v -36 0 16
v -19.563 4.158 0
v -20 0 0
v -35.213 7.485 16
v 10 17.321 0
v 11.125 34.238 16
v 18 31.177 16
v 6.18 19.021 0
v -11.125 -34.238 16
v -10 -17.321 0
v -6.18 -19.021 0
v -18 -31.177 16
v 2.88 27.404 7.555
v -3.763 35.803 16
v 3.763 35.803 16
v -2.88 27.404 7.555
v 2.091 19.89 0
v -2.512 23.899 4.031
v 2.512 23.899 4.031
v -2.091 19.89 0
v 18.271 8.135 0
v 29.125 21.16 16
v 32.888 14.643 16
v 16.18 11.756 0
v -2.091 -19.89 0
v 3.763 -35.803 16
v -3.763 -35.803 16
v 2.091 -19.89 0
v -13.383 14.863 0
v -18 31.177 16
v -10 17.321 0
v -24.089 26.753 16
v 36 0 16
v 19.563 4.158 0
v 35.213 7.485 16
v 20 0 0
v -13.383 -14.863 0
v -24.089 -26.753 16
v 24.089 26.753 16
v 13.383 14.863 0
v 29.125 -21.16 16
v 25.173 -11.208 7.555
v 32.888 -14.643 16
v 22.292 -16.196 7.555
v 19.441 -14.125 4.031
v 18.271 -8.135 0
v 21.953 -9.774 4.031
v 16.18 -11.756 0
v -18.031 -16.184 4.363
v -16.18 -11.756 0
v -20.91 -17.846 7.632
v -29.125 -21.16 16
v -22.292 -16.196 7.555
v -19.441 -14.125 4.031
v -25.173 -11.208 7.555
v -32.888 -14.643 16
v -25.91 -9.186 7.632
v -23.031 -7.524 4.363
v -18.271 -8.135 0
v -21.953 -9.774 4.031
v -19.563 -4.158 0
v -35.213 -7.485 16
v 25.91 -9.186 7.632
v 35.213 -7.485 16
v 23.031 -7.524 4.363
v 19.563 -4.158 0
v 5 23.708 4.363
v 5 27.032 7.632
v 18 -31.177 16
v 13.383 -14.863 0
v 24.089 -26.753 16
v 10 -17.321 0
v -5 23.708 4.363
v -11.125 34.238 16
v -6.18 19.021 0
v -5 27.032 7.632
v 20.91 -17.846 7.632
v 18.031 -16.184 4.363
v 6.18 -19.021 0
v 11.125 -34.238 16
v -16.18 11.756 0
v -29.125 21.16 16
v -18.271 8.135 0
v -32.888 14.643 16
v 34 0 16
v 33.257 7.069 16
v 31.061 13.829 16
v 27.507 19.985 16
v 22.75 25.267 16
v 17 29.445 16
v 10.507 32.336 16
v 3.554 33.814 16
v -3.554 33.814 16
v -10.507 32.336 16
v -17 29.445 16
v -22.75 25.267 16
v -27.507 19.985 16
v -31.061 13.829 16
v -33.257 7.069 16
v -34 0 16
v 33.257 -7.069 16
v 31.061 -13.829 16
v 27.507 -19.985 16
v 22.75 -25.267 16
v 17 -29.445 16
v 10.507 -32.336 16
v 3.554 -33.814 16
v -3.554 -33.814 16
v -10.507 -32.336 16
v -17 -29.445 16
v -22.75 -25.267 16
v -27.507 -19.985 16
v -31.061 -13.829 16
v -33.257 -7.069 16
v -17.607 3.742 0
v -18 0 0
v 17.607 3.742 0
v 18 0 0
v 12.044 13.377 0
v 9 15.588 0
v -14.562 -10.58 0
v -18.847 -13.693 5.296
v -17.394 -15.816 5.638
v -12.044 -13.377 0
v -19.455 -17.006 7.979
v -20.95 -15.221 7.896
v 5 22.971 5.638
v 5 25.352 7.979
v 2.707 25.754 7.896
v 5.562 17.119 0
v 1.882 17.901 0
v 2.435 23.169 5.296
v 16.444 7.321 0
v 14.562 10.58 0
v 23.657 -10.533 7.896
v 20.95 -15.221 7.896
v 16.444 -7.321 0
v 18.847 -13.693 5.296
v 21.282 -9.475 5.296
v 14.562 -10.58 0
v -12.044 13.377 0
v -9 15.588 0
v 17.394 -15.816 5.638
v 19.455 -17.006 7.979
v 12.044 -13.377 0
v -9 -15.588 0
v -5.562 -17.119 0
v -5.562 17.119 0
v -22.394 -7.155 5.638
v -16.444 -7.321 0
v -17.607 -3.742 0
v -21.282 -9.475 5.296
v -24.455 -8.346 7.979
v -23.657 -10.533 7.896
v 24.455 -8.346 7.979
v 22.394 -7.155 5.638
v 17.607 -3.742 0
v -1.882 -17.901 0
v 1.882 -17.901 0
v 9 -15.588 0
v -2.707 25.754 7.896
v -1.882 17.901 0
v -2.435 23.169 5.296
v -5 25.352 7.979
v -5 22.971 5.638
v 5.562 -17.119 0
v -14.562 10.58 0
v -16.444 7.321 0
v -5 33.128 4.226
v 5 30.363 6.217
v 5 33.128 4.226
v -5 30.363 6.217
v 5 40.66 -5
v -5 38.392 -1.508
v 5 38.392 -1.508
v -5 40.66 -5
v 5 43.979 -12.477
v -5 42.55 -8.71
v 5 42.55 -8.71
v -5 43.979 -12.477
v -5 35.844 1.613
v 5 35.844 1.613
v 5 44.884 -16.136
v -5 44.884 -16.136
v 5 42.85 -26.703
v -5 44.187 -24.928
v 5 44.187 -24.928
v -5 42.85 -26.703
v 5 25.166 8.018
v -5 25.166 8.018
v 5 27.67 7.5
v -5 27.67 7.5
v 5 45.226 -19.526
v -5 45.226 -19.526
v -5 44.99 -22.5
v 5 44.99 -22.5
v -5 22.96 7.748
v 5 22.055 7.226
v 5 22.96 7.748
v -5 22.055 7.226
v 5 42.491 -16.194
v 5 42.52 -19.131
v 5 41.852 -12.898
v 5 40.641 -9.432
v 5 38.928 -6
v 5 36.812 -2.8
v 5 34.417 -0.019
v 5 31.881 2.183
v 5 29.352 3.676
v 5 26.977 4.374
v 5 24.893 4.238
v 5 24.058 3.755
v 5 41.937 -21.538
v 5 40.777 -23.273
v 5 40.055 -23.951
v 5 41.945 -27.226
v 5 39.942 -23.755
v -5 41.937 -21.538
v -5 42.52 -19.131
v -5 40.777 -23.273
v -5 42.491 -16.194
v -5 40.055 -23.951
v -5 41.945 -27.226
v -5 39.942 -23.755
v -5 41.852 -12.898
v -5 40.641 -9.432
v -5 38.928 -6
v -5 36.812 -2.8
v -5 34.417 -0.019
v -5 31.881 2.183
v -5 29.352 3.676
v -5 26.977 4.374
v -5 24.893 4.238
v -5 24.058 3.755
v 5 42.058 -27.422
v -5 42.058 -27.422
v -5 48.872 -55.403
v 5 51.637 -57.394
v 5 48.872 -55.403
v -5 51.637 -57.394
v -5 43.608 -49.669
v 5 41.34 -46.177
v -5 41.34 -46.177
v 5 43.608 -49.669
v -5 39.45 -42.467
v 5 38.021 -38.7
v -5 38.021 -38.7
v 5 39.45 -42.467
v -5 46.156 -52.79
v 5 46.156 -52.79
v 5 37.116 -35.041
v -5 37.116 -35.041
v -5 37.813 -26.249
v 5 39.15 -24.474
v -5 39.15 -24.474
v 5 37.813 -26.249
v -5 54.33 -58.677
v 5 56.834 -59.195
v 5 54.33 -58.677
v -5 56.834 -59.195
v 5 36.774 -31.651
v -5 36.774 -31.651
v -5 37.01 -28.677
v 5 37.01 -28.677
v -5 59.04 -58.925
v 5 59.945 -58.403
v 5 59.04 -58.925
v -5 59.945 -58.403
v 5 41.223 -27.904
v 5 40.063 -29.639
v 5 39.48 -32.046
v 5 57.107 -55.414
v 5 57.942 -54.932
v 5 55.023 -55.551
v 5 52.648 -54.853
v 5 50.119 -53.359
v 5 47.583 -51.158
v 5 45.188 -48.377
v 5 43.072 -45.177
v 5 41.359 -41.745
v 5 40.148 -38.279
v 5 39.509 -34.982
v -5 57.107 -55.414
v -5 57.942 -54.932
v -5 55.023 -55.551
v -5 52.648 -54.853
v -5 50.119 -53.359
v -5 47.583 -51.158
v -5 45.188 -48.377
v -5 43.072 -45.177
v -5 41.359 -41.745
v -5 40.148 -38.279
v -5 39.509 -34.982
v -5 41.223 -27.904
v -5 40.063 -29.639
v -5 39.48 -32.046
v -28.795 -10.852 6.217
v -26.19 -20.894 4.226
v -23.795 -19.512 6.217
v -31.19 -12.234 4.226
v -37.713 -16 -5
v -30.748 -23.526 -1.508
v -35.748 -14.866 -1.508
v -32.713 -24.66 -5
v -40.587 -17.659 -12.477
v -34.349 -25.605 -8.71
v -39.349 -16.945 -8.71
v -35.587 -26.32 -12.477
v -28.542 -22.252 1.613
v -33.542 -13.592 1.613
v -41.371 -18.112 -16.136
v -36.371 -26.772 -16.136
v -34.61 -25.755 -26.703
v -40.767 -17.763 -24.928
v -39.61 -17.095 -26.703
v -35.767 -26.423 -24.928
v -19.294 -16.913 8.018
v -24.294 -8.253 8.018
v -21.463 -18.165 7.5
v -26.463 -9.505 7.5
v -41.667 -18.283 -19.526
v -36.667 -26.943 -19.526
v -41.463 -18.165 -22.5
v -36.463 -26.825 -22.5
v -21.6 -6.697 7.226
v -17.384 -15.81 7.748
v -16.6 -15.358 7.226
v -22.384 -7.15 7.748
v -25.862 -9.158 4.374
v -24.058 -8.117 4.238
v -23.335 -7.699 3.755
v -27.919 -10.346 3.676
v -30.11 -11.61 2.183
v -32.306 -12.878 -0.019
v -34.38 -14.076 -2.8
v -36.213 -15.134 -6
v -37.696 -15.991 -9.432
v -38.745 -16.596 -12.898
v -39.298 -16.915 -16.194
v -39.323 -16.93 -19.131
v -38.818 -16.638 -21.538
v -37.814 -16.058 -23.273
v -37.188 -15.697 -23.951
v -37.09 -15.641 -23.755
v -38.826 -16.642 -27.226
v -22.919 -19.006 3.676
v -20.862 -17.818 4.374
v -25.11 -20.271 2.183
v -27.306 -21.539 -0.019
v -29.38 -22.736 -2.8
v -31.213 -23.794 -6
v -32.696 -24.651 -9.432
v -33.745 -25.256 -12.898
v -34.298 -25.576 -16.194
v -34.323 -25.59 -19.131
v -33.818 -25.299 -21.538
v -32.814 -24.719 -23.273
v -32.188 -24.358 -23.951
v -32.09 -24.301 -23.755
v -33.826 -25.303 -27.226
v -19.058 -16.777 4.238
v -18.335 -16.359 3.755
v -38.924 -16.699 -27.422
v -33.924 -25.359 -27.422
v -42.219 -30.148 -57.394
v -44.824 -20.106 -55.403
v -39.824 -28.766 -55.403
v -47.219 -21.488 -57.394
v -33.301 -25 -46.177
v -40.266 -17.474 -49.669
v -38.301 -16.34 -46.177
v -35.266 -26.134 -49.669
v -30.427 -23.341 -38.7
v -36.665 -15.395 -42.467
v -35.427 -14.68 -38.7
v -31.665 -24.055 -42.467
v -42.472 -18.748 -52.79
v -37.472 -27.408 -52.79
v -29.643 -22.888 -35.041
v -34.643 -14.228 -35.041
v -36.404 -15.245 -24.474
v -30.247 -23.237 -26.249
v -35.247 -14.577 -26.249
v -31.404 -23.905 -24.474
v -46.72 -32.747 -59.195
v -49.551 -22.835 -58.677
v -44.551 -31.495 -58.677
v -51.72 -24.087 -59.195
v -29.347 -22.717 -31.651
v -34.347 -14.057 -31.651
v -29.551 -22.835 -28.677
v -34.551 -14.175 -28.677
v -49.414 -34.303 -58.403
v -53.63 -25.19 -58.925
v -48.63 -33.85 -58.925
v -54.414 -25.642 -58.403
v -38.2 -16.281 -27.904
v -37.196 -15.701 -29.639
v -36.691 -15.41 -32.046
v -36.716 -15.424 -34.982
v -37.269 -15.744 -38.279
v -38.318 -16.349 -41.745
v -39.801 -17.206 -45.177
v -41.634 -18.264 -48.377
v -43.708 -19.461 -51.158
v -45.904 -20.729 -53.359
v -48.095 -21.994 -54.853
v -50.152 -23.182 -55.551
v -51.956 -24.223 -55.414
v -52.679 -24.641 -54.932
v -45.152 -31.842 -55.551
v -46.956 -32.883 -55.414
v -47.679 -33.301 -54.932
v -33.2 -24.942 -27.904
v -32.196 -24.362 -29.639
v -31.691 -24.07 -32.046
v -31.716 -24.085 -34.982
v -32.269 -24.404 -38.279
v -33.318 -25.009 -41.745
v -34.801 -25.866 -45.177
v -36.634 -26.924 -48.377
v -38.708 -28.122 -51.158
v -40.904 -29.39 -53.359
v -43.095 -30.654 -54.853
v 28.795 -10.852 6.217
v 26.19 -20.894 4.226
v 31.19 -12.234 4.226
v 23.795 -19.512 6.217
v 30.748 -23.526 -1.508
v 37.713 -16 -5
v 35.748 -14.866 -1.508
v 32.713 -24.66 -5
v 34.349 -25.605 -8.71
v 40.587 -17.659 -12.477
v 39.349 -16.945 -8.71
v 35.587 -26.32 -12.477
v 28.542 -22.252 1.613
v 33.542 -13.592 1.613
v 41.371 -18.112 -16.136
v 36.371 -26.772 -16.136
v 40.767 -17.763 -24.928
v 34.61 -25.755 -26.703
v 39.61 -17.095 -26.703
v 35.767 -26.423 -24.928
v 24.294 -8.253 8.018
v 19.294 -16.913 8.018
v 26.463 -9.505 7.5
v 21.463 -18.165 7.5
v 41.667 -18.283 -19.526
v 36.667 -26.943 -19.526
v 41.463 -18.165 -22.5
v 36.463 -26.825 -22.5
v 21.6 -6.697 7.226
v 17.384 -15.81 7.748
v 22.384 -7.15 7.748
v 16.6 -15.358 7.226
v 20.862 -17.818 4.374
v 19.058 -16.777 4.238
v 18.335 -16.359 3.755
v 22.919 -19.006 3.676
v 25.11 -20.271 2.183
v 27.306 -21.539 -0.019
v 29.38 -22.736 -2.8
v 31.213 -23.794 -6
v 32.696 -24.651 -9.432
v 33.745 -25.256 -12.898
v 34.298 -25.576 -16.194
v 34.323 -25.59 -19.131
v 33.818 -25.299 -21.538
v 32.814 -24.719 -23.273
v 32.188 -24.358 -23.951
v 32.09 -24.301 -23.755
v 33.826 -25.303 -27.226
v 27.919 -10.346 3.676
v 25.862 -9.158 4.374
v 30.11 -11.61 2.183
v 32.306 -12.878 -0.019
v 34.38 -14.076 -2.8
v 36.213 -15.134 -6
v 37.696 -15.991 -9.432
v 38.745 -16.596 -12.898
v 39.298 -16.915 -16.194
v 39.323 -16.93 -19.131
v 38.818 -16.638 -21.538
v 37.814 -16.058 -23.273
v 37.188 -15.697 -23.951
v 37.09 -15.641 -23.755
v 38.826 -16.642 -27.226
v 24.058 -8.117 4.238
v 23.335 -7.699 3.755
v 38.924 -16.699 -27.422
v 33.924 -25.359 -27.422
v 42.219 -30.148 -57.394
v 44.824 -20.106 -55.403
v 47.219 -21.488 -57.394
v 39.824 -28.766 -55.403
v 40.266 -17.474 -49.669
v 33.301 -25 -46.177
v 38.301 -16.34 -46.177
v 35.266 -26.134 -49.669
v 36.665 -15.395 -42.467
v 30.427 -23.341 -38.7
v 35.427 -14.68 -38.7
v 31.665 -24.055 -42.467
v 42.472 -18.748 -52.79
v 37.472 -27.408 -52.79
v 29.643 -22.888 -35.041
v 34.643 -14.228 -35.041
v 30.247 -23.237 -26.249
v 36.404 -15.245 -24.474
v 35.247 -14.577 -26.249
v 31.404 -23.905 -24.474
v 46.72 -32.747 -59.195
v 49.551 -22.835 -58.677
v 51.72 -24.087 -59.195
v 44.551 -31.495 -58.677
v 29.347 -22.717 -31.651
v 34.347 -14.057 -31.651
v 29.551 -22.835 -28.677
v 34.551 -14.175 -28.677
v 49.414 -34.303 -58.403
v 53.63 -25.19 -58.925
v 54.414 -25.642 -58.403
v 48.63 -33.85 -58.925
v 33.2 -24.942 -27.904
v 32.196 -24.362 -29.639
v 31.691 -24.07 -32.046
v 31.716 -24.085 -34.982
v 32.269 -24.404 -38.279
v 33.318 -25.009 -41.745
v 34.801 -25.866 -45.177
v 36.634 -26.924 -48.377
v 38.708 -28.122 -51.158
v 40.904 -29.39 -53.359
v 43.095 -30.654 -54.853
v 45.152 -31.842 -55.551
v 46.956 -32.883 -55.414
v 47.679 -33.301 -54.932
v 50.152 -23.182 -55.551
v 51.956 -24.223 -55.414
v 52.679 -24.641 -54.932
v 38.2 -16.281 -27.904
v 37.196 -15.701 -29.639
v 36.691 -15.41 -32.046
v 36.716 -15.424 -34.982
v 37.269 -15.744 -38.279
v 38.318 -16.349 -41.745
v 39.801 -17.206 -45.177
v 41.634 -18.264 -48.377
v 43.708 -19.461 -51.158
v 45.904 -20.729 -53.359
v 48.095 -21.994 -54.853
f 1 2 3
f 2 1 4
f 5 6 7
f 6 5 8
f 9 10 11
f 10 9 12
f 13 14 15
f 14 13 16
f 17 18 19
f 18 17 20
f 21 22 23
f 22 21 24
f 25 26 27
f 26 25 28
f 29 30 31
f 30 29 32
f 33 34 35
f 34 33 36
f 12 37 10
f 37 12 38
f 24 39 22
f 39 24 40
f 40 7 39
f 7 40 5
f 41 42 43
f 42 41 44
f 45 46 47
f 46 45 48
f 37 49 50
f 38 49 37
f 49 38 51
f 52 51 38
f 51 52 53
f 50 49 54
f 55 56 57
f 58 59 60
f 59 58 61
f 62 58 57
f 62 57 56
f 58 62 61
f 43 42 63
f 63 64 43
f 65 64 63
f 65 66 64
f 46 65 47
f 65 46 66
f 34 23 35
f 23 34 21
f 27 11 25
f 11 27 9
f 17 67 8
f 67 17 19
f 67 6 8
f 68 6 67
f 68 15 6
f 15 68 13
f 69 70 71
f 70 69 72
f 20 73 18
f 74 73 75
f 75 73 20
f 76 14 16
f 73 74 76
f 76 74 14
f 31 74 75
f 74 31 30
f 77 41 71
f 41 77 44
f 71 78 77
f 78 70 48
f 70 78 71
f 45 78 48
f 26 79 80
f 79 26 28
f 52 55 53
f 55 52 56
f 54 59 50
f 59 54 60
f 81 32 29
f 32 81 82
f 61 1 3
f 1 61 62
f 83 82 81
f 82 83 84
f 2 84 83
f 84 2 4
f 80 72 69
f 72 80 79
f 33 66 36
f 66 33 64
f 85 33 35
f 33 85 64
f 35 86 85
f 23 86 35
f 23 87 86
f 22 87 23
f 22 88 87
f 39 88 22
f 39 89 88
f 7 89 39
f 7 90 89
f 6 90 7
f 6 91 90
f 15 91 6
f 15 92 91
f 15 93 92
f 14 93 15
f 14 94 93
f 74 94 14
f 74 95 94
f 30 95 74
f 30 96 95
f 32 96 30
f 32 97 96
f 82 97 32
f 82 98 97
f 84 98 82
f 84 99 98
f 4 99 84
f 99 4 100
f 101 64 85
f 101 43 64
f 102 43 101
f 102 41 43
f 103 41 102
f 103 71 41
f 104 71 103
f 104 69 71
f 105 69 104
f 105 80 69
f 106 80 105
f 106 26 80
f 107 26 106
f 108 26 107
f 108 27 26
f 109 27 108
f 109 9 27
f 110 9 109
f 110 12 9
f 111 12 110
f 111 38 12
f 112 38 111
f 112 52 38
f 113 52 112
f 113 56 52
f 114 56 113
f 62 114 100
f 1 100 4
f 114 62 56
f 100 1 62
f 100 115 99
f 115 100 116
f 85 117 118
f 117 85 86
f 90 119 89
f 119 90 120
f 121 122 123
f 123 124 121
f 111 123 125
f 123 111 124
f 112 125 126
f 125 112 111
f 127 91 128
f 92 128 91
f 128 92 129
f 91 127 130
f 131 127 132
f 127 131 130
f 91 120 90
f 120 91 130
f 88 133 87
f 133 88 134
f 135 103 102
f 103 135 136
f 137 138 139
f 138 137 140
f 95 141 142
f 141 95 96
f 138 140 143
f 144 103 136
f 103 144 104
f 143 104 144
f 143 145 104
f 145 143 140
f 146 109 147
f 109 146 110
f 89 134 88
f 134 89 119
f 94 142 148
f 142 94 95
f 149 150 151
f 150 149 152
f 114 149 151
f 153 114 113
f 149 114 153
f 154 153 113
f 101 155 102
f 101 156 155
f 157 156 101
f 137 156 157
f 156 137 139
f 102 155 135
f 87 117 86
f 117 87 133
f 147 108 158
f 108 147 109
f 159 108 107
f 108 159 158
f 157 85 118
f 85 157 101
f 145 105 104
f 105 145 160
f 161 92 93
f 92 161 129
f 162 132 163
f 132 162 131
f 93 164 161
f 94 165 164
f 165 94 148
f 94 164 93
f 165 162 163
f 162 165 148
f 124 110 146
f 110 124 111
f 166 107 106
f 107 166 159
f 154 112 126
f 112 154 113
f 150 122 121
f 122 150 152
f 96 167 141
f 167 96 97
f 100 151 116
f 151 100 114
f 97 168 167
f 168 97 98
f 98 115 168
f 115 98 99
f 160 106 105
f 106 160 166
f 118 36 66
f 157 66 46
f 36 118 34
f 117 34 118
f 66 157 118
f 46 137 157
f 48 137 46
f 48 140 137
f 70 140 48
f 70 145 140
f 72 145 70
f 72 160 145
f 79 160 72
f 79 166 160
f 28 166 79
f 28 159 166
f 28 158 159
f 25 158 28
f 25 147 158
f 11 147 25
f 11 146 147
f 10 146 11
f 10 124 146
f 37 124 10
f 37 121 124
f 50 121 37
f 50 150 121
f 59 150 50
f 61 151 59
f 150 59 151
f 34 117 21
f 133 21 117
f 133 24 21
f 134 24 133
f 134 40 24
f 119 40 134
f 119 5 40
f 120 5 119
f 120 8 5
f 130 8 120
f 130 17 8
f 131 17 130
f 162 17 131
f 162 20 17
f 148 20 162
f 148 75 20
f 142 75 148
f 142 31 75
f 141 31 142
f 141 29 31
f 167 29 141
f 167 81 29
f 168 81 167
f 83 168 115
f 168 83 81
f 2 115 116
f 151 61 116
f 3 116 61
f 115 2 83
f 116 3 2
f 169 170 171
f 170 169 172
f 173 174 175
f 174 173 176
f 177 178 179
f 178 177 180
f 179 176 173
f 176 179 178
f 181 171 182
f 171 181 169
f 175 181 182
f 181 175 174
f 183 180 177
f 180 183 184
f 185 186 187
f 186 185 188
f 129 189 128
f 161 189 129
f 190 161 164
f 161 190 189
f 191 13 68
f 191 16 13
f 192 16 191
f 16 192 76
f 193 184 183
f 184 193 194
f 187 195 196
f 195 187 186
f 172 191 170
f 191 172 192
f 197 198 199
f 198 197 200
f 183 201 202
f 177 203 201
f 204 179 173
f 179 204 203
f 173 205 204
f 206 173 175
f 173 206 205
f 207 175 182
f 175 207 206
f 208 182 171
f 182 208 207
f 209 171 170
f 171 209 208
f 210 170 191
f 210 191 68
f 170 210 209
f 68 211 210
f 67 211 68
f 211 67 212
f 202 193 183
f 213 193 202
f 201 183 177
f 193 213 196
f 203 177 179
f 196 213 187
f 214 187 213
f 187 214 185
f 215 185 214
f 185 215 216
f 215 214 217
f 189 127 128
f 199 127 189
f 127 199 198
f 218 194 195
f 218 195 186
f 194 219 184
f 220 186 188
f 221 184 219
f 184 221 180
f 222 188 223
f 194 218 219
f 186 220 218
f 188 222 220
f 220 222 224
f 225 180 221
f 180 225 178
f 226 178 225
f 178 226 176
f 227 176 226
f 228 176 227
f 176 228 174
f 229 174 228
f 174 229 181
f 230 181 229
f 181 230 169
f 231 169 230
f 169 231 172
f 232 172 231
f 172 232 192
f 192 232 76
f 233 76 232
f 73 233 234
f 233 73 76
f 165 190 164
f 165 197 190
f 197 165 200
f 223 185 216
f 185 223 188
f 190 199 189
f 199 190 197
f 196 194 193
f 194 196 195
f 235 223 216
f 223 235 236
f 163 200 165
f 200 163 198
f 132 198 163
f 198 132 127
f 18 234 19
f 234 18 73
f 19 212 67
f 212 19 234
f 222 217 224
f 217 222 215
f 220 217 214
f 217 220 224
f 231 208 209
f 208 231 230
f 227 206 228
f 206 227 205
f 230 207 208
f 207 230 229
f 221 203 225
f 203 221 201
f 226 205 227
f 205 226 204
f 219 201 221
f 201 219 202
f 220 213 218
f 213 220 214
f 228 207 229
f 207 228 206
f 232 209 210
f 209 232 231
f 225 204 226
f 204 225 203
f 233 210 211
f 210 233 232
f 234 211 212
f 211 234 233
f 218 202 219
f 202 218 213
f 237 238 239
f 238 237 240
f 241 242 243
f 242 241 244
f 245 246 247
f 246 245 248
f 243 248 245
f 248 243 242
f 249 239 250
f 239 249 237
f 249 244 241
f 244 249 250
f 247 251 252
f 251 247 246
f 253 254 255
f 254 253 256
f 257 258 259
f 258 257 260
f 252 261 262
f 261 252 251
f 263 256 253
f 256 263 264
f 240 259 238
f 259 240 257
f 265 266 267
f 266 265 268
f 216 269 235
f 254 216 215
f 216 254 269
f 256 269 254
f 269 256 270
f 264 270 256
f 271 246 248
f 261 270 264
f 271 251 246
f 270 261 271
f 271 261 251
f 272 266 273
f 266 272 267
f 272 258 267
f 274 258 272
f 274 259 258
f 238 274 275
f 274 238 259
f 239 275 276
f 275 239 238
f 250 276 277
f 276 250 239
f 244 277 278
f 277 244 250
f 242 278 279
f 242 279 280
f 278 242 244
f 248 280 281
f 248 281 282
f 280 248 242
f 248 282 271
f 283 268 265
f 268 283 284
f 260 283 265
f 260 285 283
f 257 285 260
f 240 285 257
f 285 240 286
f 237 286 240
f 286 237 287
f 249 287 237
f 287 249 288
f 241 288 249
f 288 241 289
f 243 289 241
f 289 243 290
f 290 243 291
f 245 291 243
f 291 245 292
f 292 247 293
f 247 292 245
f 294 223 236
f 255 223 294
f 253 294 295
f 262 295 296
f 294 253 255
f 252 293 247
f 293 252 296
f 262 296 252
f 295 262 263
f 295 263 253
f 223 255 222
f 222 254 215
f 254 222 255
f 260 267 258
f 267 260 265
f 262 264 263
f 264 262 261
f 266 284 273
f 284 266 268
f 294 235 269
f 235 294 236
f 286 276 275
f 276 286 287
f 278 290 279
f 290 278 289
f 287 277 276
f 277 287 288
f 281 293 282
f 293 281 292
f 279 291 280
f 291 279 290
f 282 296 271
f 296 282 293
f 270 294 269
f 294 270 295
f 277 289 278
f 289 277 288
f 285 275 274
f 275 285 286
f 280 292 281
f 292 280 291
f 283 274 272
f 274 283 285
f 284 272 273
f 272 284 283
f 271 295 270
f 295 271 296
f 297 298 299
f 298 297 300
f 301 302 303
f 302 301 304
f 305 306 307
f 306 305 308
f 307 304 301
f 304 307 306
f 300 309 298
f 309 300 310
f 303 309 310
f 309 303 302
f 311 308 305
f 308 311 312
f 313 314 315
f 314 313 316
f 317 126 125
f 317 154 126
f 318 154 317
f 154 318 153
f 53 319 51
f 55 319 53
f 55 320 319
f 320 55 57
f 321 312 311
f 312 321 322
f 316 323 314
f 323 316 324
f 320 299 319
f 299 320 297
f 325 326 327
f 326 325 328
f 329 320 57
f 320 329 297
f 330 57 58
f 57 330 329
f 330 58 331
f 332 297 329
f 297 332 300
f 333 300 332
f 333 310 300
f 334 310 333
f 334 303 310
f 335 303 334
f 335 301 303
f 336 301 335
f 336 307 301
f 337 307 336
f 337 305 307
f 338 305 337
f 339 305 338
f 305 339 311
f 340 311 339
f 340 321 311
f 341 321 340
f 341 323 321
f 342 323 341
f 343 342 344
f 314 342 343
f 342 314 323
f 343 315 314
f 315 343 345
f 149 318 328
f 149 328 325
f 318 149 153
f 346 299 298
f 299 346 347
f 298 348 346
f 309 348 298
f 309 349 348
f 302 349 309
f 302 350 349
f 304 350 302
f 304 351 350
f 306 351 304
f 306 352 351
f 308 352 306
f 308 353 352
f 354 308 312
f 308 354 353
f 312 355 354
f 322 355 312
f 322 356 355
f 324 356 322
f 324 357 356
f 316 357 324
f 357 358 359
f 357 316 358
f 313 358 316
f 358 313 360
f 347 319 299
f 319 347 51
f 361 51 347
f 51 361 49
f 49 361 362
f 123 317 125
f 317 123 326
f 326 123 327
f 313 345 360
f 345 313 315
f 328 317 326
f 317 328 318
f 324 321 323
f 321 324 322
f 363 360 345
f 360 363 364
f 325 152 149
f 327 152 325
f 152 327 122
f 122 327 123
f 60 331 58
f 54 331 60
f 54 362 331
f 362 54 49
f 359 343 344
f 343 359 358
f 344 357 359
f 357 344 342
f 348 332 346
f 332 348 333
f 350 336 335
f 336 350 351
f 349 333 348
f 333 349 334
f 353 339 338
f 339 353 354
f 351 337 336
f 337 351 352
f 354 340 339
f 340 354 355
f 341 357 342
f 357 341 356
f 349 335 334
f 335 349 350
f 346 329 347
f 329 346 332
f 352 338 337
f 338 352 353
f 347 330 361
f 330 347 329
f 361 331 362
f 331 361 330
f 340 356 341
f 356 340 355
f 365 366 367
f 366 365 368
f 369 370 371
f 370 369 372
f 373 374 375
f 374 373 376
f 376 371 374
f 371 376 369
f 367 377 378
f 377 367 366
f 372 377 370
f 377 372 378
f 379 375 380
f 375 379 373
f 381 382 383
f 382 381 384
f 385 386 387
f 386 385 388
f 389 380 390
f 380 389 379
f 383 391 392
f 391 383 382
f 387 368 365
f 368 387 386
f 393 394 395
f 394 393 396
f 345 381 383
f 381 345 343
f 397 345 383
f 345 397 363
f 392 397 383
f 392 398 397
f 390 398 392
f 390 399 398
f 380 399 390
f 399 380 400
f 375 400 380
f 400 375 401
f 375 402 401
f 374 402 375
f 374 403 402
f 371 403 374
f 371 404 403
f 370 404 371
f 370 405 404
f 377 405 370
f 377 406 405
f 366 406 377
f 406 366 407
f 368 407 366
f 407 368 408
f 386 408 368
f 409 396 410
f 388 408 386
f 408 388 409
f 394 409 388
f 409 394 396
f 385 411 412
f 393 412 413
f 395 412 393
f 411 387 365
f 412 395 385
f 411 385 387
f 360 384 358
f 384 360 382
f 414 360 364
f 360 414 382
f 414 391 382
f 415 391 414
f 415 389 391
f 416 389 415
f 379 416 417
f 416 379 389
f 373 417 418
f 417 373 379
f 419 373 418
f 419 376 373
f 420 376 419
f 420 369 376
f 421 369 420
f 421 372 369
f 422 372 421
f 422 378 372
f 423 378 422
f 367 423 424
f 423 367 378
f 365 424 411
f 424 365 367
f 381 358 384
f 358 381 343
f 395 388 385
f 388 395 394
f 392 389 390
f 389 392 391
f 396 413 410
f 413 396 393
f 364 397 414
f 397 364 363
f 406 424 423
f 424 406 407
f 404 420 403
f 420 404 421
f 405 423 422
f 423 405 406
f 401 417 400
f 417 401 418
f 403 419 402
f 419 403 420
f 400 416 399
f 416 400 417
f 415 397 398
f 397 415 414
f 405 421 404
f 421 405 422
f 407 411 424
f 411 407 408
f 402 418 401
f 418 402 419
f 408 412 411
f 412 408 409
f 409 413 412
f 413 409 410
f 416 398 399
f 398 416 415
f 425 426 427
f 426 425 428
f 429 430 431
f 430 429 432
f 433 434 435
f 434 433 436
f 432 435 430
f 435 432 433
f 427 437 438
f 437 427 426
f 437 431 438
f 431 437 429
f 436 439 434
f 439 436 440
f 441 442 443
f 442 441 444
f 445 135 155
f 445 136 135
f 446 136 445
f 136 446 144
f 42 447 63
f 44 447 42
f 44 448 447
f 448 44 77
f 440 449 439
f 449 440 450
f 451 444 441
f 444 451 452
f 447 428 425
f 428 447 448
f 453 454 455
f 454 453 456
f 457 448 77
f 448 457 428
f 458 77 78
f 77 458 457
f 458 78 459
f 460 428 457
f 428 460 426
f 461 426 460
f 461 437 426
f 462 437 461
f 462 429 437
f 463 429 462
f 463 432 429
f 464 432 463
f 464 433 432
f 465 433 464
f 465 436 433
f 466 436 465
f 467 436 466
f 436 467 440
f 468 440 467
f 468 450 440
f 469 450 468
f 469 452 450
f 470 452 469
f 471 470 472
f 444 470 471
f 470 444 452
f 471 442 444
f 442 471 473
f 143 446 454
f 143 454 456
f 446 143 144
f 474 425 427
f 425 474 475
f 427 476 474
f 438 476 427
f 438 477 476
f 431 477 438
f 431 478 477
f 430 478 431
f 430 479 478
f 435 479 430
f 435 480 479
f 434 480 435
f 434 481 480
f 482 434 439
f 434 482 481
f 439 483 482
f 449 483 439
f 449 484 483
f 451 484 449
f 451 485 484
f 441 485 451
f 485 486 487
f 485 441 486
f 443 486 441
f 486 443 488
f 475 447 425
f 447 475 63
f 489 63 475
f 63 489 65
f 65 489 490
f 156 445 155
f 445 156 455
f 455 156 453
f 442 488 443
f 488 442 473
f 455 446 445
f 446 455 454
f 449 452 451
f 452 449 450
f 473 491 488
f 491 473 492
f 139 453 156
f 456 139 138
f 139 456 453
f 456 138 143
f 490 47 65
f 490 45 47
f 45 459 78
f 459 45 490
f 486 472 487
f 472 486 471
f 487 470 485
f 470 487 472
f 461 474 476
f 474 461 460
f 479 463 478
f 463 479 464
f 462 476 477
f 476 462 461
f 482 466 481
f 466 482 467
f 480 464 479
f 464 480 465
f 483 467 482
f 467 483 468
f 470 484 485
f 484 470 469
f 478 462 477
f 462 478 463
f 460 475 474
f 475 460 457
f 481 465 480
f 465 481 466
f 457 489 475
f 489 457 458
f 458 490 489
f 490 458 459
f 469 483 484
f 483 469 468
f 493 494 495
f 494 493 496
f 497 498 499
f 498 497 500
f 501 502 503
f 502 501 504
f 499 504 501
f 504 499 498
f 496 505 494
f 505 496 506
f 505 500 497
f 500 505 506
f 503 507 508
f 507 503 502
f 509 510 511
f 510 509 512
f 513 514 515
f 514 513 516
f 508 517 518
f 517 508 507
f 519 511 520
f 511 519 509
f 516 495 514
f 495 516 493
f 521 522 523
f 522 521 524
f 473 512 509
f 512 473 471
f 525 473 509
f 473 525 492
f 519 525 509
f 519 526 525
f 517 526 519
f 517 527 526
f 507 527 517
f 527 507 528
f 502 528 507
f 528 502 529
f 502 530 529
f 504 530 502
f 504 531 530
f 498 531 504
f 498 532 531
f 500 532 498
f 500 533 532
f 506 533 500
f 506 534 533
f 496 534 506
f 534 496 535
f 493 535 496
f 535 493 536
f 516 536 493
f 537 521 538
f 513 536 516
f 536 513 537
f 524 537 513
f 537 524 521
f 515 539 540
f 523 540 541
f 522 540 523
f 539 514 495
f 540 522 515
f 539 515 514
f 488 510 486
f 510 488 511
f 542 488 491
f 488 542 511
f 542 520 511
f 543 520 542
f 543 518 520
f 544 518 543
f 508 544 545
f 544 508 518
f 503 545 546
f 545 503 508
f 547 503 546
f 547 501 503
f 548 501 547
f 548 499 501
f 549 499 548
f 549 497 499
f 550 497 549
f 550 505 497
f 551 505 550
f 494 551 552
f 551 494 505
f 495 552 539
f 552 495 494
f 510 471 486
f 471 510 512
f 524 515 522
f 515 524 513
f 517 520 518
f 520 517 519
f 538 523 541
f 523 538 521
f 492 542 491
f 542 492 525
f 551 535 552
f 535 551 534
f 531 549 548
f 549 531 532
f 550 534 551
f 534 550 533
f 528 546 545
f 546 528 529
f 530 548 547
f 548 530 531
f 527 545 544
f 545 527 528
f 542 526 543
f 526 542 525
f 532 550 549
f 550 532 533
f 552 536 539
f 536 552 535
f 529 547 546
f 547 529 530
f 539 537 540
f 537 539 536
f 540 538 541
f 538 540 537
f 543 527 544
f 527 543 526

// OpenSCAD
module base() {
    translate([0,0,16]) {
        rotate([0, 180, 0]){
            difference() {
                cylinder(36, 36, 0);
                translate([0, 0, -1]){
                cylinder(35, 35, 0);
                }
                translate([-25,-25,16]) {
                    cube(50);
                }
            }
        }
    }
}

module round_roof(depth = 10, radius = 10) {
    difference() {
        linear_extrude(depth){
            circle(radius);
        }
        cubeSize = max(depth, 2*radius) + 1;
        translate([0, -cubeSize/2, -1]) {
        cube(cubeSize);
        }
    }
}

module leg_part() {
    difference () {
        scale([1,2,1]) {
            round_roof();
        }
        translate([0,0,-0.1]){
            scale([1,2,1.1]) {
                round_roof(radius=8);
            }
        }
    }
}

module leg() {
    translate([-5, 32, -10]){
    rotate([-60, 0, 0]){
        rotate([0, 90, 0]) {
    leg_part();
    translate([0,36,0]) {
        rotate([0, 0, 180]){
            leg_part();
        }
    }
}
}
}
}

module legs() {
    leg();

rotate([0, 0, 120]){
    leg();
}

rotate([0, 0, 240]){
    leg();
}
}

base();
difference() {
    legs();
    translate([0, 0, -1]){
        rotate([0, 180, 0]){
        cylinder(35, 35, 0);
        }
    }
}
